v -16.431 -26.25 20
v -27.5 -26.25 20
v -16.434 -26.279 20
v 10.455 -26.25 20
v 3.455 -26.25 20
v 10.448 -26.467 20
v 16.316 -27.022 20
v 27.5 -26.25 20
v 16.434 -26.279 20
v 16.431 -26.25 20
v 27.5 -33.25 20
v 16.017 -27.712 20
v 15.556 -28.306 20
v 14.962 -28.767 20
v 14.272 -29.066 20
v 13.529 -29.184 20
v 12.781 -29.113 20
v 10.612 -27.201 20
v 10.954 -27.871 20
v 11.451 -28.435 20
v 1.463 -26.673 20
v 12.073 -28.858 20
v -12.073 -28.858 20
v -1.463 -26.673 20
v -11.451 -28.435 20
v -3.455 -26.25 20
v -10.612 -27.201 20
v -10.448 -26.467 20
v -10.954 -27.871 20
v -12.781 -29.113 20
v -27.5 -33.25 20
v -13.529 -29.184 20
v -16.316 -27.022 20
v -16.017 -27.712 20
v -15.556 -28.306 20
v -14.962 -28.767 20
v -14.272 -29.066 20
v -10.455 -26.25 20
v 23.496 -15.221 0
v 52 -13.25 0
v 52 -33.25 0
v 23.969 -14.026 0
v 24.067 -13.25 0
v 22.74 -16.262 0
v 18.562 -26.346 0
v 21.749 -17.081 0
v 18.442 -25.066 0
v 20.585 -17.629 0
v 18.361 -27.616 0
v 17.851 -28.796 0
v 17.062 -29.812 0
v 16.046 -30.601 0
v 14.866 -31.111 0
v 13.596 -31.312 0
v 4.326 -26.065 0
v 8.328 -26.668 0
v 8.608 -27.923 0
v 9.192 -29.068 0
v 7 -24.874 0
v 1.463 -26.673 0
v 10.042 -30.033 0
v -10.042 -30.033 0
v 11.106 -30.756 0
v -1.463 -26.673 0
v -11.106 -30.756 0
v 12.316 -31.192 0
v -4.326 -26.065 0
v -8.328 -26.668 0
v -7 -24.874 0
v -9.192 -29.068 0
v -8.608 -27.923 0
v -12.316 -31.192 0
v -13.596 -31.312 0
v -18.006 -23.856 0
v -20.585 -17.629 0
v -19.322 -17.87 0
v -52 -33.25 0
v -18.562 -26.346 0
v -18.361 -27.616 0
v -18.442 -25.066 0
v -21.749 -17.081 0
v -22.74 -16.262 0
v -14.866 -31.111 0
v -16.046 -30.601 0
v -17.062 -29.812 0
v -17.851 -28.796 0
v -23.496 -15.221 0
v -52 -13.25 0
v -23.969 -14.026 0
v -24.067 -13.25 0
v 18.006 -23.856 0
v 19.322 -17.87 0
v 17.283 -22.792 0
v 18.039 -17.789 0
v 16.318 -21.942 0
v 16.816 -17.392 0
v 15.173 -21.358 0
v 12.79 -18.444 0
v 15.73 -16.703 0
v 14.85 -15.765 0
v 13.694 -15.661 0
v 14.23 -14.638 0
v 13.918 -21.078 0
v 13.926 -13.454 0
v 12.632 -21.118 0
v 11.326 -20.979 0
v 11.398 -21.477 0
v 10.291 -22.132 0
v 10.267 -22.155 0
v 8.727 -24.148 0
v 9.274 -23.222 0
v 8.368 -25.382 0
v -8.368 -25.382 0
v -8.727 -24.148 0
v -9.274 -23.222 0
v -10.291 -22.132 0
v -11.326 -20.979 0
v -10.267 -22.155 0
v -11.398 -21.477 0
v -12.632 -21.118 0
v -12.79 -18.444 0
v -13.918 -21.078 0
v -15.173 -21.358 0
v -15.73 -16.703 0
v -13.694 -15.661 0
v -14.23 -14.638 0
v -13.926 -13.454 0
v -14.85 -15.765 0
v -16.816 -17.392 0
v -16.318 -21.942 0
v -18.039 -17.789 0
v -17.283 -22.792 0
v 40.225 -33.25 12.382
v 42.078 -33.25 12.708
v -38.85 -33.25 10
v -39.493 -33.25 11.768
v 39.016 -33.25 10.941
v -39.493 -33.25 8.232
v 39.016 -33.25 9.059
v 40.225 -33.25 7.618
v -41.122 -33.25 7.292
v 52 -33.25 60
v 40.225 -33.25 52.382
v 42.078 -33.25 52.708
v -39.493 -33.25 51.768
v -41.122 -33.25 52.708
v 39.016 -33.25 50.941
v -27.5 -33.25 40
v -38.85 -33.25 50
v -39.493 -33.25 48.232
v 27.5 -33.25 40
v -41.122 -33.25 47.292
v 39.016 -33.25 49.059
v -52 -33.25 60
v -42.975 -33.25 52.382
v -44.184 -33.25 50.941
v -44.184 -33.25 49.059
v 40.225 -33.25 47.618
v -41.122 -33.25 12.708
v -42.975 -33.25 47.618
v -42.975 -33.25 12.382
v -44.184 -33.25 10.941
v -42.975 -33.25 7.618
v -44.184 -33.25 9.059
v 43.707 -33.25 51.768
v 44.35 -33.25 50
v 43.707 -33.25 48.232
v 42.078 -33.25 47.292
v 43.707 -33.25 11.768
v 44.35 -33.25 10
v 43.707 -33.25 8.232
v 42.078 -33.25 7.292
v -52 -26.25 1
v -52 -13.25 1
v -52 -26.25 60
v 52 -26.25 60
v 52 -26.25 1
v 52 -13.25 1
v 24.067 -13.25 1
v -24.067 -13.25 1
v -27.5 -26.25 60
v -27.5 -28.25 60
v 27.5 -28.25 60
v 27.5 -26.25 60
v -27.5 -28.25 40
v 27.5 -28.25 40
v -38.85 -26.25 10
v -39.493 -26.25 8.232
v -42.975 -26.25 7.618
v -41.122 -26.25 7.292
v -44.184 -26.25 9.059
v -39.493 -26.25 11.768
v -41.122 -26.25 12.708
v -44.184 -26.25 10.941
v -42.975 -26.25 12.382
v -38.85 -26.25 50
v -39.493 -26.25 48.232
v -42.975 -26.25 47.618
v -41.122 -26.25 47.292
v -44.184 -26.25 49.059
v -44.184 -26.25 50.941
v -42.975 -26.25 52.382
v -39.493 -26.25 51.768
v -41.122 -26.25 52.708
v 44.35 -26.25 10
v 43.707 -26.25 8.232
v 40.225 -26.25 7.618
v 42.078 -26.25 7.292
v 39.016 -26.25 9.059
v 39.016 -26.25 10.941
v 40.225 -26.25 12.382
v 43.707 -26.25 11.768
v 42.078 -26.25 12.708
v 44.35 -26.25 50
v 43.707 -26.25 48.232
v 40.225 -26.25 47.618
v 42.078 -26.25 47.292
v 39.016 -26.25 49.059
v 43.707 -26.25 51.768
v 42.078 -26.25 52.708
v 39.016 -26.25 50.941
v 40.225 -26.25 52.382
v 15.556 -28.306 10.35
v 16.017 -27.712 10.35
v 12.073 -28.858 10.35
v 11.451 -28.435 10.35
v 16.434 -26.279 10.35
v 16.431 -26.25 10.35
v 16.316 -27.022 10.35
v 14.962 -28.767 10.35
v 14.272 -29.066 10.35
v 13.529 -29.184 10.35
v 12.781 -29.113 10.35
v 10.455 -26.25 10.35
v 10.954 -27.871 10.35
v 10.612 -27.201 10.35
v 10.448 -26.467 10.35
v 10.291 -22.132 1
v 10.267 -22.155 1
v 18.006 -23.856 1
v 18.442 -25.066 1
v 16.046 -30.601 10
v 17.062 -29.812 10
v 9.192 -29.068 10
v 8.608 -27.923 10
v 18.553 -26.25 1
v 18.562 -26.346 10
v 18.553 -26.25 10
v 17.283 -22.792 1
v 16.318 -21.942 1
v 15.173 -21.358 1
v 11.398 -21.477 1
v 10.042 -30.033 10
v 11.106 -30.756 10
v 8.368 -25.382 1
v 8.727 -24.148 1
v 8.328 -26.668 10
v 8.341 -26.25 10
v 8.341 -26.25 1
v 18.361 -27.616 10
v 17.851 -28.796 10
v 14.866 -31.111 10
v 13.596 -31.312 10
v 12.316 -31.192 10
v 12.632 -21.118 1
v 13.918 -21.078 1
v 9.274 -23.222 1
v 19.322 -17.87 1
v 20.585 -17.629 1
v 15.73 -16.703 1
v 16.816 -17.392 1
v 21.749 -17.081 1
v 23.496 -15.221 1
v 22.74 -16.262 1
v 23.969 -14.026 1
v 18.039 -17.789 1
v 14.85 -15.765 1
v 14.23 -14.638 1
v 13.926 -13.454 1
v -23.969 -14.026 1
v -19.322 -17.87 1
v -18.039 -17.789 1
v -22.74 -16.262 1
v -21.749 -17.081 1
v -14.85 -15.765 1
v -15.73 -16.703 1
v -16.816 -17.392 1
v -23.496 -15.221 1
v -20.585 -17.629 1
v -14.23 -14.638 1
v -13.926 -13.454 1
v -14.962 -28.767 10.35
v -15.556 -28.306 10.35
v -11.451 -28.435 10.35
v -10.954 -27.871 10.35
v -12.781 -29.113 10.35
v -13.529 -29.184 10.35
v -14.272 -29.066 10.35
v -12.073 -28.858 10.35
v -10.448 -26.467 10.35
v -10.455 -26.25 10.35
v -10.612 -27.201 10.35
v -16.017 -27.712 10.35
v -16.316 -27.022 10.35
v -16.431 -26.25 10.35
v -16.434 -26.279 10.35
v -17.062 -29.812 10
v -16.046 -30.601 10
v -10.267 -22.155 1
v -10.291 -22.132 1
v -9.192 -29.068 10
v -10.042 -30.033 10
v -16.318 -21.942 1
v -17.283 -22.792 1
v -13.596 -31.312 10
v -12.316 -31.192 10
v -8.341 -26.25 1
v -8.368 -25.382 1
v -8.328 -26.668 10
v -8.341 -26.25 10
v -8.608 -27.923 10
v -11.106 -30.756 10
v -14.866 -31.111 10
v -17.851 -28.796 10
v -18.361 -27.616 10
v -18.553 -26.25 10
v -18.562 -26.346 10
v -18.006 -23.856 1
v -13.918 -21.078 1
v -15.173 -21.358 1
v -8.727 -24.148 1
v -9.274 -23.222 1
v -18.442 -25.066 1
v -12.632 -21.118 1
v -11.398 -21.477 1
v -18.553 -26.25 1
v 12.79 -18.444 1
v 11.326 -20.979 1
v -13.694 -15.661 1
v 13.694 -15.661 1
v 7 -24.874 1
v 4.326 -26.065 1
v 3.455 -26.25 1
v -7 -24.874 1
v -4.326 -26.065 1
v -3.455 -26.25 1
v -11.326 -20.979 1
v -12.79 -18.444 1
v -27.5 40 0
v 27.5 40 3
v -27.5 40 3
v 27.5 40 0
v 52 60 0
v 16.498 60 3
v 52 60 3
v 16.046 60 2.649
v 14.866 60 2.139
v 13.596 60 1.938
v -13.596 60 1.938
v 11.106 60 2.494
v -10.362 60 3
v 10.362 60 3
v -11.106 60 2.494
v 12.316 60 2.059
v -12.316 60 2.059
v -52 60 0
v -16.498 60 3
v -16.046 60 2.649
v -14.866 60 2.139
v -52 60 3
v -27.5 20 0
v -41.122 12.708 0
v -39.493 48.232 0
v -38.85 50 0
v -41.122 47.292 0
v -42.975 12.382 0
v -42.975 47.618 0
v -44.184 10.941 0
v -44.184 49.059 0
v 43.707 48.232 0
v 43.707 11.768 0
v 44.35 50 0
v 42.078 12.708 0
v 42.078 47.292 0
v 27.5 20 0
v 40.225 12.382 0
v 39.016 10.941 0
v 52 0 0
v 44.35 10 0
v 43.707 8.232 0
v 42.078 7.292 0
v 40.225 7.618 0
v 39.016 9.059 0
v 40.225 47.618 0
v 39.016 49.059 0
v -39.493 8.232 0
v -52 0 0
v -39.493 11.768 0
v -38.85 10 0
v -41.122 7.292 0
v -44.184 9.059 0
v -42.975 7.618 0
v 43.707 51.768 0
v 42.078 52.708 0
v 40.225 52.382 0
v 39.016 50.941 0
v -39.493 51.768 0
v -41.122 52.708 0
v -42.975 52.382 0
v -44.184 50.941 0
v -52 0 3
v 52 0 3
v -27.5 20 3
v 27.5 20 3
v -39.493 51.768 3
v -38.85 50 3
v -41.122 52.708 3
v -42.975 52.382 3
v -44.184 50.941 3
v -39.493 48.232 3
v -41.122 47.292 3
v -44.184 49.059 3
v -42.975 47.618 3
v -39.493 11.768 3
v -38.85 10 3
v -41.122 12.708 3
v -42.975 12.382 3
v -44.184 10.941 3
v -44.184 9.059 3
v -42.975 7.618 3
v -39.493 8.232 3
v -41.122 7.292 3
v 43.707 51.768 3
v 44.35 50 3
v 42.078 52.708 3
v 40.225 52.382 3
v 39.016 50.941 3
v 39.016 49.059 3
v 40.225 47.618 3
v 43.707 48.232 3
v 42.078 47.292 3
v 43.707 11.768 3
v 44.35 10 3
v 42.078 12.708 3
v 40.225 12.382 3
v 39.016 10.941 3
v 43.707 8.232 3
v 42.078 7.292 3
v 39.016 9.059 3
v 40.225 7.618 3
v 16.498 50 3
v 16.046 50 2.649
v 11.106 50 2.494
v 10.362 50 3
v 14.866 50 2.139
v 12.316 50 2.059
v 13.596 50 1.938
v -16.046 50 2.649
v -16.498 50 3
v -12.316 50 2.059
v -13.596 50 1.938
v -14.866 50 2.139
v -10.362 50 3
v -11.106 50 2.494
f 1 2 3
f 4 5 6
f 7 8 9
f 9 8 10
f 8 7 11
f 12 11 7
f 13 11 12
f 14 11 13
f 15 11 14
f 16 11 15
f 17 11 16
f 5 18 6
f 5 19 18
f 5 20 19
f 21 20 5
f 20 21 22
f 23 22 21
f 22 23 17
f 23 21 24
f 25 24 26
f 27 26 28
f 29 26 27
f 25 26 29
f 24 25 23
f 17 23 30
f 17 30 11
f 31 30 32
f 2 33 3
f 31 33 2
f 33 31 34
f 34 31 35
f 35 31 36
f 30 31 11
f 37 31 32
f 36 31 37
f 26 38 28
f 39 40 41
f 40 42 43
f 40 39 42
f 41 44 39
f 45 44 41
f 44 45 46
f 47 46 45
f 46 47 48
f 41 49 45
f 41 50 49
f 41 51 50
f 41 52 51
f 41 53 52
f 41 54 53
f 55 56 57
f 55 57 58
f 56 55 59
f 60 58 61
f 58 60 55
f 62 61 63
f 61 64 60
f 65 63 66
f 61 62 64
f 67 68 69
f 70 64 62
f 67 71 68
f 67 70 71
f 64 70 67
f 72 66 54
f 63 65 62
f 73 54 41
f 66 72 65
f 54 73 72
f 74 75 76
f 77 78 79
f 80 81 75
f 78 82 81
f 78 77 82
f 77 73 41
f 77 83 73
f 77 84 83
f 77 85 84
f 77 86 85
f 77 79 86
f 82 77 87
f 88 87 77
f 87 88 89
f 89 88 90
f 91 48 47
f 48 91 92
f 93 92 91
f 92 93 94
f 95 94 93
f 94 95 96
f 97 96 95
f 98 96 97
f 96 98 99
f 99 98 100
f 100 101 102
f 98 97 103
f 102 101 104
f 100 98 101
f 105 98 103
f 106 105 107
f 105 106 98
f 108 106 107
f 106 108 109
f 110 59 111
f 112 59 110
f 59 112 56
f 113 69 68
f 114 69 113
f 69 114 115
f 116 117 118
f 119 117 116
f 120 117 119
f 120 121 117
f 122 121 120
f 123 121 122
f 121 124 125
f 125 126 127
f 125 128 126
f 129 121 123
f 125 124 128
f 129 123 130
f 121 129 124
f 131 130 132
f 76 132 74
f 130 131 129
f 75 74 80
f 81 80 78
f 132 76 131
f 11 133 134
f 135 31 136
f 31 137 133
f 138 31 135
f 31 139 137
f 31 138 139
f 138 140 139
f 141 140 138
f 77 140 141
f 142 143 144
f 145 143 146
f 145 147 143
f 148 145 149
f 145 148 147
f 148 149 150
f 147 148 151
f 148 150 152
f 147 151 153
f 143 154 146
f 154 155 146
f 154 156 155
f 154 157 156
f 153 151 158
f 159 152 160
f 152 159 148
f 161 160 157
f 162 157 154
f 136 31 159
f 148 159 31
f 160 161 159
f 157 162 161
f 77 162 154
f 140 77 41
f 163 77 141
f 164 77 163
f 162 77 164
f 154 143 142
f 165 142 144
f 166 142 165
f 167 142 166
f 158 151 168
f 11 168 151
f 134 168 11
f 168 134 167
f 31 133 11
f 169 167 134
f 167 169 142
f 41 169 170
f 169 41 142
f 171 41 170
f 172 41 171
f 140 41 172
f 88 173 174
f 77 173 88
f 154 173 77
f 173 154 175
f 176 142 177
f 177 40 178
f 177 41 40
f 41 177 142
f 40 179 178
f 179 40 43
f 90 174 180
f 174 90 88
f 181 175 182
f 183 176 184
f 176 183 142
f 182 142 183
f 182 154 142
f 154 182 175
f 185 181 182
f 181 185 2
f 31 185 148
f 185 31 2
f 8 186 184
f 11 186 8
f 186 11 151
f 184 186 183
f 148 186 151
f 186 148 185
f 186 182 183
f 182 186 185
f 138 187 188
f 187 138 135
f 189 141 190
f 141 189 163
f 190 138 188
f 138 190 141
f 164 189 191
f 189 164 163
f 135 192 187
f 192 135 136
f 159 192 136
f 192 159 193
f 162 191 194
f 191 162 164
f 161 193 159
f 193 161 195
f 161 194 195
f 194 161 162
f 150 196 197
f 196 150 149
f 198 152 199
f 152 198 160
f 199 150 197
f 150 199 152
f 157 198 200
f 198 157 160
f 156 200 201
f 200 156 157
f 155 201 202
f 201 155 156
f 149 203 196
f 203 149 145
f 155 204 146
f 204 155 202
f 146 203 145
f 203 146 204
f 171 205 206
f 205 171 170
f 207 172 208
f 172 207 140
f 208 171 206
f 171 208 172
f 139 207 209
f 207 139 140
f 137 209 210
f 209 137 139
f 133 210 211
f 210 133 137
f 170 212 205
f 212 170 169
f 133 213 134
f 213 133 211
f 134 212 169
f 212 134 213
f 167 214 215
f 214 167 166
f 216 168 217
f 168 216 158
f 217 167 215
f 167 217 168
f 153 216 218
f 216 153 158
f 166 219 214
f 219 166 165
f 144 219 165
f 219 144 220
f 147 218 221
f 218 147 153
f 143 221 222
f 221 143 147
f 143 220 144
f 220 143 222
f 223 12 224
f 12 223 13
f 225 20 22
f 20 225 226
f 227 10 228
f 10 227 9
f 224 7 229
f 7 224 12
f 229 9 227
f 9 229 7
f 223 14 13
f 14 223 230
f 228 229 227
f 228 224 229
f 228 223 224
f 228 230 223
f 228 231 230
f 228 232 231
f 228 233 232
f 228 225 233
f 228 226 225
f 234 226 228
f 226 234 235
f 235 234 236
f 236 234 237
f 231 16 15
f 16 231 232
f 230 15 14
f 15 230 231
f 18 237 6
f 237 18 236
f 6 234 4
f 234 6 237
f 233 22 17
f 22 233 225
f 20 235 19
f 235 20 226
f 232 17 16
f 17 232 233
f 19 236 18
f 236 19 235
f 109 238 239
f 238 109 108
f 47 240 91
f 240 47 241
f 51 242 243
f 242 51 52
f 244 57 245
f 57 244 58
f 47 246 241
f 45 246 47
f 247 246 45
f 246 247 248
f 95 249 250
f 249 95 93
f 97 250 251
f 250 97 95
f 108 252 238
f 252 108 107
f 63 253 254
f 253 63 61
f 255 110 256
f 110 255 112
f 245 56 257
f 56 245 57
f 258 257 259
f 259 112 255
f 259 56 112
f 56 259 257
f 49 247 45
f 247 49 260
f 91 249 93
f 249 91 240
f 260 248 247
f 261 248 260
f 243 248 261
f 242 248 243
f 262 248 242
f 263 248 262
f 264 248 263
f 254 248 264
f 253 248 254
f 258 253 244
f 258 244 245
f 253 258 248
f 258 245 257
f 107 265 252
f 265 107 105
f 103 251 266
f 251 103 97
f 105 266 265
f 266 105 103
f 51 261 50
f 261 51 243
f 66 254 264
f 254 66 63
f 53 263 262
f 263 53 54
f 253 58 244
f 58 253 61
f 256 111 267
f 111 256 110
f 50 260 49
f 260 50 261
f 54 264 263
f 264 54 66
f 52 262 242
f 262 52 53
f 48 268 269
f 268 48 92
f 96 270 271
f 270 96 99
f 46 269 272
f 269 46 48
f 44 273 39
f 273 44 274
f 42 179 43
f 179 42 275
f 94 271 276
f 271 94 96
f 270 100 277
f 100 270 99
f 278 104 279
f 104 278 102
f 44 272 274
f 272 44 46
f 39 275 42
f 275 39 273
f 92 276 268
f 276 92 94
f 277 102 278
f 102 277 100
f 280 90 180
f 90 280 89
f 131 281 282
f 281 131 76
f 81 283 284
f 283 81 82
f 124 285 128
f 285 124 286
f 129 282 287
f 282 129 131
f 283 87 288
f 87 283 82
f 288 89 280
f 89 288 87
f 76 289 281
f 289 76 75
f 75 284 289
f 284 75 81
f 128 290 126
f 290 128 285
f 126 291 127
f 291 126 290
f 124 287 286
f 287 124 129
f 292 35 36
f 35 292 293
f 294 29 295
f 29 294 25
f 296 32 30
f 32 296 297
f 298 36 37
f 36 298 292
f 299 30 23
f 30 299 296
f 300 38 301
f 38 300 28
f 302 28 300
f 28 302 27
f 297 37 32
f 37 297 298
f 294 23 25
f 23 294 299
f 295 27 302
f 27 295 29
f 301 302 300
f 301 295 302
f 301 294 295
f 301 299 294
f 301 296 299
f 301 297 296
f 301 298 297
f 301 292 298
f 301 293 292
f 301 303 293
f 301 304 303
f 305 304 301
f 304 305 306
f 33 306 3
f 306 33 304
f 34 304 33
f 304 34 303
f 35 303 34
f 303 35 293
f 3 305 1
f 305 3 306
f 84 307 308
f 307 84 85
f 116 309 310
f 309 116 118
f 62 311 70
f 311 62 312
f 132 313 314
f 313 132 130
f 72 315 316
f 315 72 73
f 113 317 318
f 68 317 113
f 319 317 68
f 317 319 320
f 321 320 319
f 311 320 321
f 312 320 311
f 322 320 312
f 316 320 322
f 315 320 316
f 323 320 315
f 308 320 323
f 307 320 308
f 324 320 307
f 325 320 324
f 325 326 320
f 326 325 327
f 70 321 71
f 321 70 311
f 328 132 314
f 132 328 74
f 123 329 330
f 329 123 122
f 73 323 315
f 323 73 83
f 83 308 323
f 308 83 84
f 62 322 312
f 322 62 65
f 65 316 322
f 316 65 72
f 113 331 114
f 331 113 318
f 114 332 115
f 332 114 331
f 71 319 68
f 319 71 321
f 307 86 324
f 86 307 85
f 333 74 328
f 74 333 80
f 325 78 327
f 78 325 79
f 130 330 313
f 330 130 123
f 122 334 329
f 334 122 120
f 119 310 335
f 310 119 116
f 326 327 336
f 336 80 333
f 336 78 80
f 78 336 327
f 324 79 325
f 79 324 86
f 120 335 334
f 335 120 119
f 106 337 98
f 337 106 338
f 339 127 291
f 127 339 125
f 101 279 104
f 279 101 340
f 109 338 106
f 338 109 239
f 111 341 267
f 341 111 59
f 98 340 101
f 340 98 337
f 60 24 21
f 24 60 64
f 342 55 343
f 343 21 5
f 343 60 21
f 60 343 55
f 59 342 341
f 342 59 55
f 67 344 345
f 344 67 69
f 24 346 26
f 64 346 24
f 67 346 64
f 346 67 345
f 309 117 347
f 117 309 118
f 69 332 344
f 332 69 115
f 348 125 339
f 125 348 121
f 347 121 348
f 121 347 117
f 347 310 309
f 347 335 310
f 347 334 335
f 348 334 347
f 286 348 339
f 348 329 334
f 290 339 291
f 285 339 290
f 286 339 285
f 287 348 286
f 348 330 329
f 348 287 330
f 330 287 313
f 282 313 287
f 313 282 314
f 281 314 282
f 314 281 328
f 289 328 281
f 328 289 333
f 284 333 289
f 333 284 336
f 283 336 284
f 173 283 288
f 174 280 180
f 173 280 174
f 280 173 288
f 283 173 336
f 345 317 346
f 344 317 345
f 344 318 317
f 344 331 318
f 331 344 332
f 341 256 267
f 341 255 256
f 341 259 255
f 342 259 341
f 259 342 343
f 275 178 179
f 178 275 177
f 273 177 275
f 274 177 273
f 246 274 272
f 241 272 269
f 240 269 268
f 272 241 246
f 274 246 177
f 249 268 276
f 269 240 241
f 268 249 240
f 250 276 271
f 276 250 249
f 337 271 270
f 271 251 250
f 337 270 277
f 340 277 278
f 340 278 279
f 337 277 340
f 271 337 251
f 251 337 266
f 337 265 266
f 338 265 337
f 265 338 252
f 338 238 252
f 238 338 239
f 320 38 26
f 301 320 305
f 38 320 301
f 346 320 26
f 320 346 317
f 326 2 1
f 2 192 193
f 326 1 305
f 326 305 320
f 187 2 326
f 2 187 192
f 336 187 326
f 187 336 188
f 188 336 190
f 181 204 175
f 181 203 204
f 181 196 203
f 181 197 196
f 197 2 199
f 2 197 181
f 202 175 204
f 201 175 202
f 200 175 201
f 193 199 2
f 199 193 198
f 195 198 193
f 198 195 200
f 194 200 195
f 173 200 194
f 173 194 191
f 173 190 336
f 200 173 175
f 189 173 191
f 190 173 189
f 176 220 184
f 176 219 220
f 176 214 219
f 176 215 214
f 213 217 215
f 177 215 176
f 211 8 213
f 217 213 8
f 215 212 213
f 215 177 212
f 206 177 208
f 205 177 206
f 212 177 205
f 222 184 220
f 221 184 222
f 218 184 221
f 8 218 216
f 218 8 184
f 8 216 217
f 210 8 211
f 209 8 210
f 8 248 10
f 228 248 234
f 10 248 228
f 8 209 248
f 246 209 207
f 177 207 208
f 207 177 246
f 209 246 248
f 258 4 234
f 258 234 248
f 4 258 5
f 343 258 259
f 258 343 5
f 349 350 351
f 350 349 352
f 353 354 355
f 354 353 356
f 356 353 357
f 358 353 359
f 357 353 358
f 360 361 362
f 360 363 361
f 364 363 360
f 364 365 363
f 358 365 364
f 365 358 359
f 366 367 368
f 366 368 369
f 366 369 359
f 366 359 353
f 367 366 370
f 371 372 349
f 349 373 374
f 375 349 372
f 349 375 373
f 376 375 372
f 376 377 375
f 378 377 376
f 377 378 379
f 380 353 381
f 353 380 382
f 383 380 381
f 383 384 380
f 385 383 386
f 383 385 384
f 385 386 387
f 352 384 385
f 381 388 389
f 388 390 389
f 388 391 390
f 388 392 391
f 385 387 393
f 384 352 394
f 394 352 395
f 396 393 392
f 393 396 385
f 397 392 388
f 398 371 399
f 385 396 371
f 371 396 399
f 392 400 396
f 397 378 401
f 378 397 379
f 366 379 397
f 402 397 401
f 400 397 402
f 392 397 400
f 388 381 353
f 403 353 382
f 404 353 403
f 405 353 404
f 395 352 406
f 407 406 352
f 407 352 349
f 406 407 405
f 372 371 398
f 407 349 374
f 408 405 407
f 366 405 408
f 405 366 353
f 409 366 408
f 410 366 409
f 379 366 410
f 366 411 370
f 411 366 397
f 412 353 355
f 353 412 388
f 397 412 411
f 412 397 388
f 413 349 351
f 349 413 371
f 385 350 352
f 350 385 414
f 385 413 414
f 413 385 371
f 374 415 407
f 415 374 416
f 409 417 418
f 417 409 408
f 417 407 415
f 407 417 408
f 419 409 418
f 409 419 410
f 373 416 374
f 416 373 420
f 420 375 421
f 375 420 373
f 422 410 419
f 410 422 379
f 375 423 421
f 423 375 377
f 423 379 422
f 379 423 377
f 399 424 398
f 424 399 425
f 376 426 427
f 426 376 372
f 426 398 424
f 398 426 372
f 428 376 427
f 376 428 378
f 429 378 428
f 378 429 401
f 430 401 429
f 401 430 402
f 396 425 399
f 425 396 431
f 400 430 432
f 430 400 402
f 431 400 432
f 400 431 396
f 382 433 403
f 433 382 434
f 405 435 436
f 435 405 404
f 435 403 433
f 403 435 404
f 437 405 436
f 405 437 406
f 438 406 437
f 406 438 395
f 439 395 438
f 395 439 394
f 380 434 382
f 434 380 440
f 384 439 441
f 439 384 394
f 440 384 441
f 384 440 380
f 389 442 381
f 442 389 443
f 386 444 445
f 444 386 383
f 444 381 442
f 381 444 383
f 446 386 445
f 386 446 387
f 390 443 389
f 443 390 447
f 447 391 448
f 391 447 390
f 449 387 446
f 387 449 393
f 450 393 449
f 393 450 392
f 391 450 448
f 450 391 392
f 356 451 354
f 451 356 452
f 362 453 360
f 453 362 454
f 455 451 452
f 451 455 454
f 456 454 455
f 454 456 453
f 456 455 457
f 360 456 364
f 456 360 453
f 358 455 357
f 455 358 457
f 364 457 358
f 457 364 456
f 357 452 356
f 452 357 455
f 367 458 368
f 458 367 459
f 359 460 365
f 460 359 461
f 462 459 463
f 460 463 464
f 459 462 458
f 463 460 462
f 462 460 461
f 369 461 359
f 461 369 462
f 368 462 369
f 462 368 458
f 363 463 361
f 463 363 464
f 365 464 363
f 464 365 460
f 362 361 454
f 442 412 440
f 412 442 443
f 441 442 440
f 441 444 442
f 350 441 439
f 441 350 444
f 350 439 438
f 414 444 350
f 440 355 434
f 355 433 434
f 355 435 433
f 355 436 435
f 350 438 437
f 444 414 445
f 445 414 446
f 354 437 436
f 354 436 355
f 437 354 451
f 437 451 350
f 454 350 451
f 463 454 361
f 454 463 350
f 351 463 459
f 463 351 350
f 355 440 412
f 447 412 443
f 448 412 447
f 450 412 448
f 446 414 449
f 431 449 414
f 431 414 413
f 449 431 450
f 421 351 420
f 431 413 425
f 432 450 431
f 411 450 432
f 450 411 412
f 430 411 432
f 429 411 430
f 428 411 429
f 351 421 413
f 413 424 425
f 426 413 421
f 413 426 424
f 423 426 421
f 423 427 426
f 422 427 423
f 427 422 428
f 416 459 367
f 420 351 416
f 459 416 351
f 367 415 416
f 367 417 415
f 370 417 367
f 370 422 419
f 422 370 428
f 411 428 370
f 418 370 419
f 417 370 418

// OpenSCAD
/**
 * SpindleMount.scad
 * 
 * A simple mount part for holding the spindle.
 * 
 * Created by Diego Viejo
 * 
 */

//ball bearing bolt measurements
outerRad = 48 / 2;
holeRad = 38 / 2;
mainBodyRad = 28 / 2;

spindleRad = 52/2;
height = 20;
wallThick = 10;

mountHoleSeparation = 2*spindleRad * 0.8; //TODO: fit this to the ZCarriage

boltRad = 5/2 + 0.25;

extraLength = outerRad*2  - 8 + 0.75 - 8 + 0.5;

module spindleMount()
{
  difference()
  {
    union() //body
    {
      translate([-spindleRad*1.25, -extraLength, 0]) cube([2.5*spindleRad, 20 + extraLength, height]);
      translate([-spindleRad*2, -extraLength, 0]) cube([4*spindleRad, 20 , height]);
      translate([0, spindleRad+wallThick, 0]) cylinder(r=spindleRad+wallThick, h=height);
      translate([-10, spindleRad*2 + wallThick, 0]) cube([20, 2*wallThick, height]);
      
      //laterals
      translate([-spindleRad*2, -extraLength, 0]) cube([24, 20 , height*3]);
      hull()
      {
	translate([-spindleRad*1.25, -extraLength, 0]) cube([5, 20, height*3]);
	translate([-spindleRad*1.25, -extraLength, 0]) cube([5, 20 + extraLength, height]);
      }

      translate([spindleRad*2-24, -extraLength, 0]) cube([24, 20 , height*3]);
      hull()
      {
	translate([spindleRad*1.25 - 5, -extraLength, 0]) cube([5, 20, height*3]);
	translate([spindleRad*1.25 - 5, -extraLength, 0]) cube([5, 20 + extraLength, height]);
      }

      //upper back
      translate([-spindleRad*2, -extraLength, height*3-20]) cube([4*spindleRad, 5 , 20]);
      
    }
    
    translate([0, spindleRad+wallThick, -1]) cylinder(r=spindleRad, h=height+2);
    
    hull()
    {
      translate([-2, spindleRad*2, -1]) cube([4, 5, height+2]);
      translate([-7/2, spindleRad*2+40, -1]) cube([7, 5, height+2]);
    }
    
    
    //attaching holes
    translate([0, -extraLength, 0])
    #for(i = [-1, 1])
    {
      translate([i*mountHoleSeparation, -20, height/2]) rotate([-90, 0, 0]) cylinder(r= boltRad, h= 60);
      translate([i*mountHoleSeparation, -20, height/2+40]) rotate([-90, 0, 0]) cylinder(r= boltRad, h= 60);
      //translate([i*mountHoleSeparation, 12, height/2]) rotate([-90, 0, 0]) cylinder(r=9*0.57, h= 60);
    }
    
    //fasten hole and nut
    translate([-20, spindleRad*2 + wallThick*5/2-1, height/2]) rotate([0, 90, 0]) cylinder(r=boltRad, h=40);
    translate([10-4.5, spindleRad*2 + wallThick*5/2-1, height/2]) rotate([0, 90, 0]) cylinder(r=9*0.57, h=5, $fn=6);
    
    
    //Transmision eje Z
    translate([0, -(outerRad -4 +0.75) + 8, 0])
    {
      roulette(localHeight = height+2);
      hull()
      {
	translate([0, 0, -1]) cylinder(r=mainBodyRad, h=height+2);
	translate([0, 25, -1]) cylinder(r=mainBodyRad, h=height+2);
      }
      *translate([0, 0, 10])   intersection()
      {
	cylinder(r=outerRad+1.75, h=height);
	cube([100, outerRad*2 - 8+1.5, 100], center=true);
      }      
    }

    //bites cut off
    translate([-spindleRad*2, -5, height]) rotate([45, 0, 0]) cube([spindleRad*4, 10,10]);
  }
}

module roulette(localHeight=8)
{
  for(r=[-45, 0, 180, 225])
    rotate(r)
    {
      translate([holeRad, 0, 10.35]) 
	cylinder(r=3, h=localHeight, $fn=25);
      translate([holeRad, 0, -1]) 
	cylinder(r=9*0.57, h=10+1, $fn=25);
    }
}

difference()
{
  spindleMount();
  translate([-100, -extraLength+7, 1]) cube([200, 150, height*3+2]);
  translate([-100, -extraLength+20, -1]) cube([200, 100, 4]);
}

translate([0, height*3, 0]) 
rotate([90, 0, 0])
translate([0, extraLength, 0])
difference()
{
  spindleMount();
  translate([-100, -extraLength+3, -1]) cube([200, 150, height*3+2]);
}
